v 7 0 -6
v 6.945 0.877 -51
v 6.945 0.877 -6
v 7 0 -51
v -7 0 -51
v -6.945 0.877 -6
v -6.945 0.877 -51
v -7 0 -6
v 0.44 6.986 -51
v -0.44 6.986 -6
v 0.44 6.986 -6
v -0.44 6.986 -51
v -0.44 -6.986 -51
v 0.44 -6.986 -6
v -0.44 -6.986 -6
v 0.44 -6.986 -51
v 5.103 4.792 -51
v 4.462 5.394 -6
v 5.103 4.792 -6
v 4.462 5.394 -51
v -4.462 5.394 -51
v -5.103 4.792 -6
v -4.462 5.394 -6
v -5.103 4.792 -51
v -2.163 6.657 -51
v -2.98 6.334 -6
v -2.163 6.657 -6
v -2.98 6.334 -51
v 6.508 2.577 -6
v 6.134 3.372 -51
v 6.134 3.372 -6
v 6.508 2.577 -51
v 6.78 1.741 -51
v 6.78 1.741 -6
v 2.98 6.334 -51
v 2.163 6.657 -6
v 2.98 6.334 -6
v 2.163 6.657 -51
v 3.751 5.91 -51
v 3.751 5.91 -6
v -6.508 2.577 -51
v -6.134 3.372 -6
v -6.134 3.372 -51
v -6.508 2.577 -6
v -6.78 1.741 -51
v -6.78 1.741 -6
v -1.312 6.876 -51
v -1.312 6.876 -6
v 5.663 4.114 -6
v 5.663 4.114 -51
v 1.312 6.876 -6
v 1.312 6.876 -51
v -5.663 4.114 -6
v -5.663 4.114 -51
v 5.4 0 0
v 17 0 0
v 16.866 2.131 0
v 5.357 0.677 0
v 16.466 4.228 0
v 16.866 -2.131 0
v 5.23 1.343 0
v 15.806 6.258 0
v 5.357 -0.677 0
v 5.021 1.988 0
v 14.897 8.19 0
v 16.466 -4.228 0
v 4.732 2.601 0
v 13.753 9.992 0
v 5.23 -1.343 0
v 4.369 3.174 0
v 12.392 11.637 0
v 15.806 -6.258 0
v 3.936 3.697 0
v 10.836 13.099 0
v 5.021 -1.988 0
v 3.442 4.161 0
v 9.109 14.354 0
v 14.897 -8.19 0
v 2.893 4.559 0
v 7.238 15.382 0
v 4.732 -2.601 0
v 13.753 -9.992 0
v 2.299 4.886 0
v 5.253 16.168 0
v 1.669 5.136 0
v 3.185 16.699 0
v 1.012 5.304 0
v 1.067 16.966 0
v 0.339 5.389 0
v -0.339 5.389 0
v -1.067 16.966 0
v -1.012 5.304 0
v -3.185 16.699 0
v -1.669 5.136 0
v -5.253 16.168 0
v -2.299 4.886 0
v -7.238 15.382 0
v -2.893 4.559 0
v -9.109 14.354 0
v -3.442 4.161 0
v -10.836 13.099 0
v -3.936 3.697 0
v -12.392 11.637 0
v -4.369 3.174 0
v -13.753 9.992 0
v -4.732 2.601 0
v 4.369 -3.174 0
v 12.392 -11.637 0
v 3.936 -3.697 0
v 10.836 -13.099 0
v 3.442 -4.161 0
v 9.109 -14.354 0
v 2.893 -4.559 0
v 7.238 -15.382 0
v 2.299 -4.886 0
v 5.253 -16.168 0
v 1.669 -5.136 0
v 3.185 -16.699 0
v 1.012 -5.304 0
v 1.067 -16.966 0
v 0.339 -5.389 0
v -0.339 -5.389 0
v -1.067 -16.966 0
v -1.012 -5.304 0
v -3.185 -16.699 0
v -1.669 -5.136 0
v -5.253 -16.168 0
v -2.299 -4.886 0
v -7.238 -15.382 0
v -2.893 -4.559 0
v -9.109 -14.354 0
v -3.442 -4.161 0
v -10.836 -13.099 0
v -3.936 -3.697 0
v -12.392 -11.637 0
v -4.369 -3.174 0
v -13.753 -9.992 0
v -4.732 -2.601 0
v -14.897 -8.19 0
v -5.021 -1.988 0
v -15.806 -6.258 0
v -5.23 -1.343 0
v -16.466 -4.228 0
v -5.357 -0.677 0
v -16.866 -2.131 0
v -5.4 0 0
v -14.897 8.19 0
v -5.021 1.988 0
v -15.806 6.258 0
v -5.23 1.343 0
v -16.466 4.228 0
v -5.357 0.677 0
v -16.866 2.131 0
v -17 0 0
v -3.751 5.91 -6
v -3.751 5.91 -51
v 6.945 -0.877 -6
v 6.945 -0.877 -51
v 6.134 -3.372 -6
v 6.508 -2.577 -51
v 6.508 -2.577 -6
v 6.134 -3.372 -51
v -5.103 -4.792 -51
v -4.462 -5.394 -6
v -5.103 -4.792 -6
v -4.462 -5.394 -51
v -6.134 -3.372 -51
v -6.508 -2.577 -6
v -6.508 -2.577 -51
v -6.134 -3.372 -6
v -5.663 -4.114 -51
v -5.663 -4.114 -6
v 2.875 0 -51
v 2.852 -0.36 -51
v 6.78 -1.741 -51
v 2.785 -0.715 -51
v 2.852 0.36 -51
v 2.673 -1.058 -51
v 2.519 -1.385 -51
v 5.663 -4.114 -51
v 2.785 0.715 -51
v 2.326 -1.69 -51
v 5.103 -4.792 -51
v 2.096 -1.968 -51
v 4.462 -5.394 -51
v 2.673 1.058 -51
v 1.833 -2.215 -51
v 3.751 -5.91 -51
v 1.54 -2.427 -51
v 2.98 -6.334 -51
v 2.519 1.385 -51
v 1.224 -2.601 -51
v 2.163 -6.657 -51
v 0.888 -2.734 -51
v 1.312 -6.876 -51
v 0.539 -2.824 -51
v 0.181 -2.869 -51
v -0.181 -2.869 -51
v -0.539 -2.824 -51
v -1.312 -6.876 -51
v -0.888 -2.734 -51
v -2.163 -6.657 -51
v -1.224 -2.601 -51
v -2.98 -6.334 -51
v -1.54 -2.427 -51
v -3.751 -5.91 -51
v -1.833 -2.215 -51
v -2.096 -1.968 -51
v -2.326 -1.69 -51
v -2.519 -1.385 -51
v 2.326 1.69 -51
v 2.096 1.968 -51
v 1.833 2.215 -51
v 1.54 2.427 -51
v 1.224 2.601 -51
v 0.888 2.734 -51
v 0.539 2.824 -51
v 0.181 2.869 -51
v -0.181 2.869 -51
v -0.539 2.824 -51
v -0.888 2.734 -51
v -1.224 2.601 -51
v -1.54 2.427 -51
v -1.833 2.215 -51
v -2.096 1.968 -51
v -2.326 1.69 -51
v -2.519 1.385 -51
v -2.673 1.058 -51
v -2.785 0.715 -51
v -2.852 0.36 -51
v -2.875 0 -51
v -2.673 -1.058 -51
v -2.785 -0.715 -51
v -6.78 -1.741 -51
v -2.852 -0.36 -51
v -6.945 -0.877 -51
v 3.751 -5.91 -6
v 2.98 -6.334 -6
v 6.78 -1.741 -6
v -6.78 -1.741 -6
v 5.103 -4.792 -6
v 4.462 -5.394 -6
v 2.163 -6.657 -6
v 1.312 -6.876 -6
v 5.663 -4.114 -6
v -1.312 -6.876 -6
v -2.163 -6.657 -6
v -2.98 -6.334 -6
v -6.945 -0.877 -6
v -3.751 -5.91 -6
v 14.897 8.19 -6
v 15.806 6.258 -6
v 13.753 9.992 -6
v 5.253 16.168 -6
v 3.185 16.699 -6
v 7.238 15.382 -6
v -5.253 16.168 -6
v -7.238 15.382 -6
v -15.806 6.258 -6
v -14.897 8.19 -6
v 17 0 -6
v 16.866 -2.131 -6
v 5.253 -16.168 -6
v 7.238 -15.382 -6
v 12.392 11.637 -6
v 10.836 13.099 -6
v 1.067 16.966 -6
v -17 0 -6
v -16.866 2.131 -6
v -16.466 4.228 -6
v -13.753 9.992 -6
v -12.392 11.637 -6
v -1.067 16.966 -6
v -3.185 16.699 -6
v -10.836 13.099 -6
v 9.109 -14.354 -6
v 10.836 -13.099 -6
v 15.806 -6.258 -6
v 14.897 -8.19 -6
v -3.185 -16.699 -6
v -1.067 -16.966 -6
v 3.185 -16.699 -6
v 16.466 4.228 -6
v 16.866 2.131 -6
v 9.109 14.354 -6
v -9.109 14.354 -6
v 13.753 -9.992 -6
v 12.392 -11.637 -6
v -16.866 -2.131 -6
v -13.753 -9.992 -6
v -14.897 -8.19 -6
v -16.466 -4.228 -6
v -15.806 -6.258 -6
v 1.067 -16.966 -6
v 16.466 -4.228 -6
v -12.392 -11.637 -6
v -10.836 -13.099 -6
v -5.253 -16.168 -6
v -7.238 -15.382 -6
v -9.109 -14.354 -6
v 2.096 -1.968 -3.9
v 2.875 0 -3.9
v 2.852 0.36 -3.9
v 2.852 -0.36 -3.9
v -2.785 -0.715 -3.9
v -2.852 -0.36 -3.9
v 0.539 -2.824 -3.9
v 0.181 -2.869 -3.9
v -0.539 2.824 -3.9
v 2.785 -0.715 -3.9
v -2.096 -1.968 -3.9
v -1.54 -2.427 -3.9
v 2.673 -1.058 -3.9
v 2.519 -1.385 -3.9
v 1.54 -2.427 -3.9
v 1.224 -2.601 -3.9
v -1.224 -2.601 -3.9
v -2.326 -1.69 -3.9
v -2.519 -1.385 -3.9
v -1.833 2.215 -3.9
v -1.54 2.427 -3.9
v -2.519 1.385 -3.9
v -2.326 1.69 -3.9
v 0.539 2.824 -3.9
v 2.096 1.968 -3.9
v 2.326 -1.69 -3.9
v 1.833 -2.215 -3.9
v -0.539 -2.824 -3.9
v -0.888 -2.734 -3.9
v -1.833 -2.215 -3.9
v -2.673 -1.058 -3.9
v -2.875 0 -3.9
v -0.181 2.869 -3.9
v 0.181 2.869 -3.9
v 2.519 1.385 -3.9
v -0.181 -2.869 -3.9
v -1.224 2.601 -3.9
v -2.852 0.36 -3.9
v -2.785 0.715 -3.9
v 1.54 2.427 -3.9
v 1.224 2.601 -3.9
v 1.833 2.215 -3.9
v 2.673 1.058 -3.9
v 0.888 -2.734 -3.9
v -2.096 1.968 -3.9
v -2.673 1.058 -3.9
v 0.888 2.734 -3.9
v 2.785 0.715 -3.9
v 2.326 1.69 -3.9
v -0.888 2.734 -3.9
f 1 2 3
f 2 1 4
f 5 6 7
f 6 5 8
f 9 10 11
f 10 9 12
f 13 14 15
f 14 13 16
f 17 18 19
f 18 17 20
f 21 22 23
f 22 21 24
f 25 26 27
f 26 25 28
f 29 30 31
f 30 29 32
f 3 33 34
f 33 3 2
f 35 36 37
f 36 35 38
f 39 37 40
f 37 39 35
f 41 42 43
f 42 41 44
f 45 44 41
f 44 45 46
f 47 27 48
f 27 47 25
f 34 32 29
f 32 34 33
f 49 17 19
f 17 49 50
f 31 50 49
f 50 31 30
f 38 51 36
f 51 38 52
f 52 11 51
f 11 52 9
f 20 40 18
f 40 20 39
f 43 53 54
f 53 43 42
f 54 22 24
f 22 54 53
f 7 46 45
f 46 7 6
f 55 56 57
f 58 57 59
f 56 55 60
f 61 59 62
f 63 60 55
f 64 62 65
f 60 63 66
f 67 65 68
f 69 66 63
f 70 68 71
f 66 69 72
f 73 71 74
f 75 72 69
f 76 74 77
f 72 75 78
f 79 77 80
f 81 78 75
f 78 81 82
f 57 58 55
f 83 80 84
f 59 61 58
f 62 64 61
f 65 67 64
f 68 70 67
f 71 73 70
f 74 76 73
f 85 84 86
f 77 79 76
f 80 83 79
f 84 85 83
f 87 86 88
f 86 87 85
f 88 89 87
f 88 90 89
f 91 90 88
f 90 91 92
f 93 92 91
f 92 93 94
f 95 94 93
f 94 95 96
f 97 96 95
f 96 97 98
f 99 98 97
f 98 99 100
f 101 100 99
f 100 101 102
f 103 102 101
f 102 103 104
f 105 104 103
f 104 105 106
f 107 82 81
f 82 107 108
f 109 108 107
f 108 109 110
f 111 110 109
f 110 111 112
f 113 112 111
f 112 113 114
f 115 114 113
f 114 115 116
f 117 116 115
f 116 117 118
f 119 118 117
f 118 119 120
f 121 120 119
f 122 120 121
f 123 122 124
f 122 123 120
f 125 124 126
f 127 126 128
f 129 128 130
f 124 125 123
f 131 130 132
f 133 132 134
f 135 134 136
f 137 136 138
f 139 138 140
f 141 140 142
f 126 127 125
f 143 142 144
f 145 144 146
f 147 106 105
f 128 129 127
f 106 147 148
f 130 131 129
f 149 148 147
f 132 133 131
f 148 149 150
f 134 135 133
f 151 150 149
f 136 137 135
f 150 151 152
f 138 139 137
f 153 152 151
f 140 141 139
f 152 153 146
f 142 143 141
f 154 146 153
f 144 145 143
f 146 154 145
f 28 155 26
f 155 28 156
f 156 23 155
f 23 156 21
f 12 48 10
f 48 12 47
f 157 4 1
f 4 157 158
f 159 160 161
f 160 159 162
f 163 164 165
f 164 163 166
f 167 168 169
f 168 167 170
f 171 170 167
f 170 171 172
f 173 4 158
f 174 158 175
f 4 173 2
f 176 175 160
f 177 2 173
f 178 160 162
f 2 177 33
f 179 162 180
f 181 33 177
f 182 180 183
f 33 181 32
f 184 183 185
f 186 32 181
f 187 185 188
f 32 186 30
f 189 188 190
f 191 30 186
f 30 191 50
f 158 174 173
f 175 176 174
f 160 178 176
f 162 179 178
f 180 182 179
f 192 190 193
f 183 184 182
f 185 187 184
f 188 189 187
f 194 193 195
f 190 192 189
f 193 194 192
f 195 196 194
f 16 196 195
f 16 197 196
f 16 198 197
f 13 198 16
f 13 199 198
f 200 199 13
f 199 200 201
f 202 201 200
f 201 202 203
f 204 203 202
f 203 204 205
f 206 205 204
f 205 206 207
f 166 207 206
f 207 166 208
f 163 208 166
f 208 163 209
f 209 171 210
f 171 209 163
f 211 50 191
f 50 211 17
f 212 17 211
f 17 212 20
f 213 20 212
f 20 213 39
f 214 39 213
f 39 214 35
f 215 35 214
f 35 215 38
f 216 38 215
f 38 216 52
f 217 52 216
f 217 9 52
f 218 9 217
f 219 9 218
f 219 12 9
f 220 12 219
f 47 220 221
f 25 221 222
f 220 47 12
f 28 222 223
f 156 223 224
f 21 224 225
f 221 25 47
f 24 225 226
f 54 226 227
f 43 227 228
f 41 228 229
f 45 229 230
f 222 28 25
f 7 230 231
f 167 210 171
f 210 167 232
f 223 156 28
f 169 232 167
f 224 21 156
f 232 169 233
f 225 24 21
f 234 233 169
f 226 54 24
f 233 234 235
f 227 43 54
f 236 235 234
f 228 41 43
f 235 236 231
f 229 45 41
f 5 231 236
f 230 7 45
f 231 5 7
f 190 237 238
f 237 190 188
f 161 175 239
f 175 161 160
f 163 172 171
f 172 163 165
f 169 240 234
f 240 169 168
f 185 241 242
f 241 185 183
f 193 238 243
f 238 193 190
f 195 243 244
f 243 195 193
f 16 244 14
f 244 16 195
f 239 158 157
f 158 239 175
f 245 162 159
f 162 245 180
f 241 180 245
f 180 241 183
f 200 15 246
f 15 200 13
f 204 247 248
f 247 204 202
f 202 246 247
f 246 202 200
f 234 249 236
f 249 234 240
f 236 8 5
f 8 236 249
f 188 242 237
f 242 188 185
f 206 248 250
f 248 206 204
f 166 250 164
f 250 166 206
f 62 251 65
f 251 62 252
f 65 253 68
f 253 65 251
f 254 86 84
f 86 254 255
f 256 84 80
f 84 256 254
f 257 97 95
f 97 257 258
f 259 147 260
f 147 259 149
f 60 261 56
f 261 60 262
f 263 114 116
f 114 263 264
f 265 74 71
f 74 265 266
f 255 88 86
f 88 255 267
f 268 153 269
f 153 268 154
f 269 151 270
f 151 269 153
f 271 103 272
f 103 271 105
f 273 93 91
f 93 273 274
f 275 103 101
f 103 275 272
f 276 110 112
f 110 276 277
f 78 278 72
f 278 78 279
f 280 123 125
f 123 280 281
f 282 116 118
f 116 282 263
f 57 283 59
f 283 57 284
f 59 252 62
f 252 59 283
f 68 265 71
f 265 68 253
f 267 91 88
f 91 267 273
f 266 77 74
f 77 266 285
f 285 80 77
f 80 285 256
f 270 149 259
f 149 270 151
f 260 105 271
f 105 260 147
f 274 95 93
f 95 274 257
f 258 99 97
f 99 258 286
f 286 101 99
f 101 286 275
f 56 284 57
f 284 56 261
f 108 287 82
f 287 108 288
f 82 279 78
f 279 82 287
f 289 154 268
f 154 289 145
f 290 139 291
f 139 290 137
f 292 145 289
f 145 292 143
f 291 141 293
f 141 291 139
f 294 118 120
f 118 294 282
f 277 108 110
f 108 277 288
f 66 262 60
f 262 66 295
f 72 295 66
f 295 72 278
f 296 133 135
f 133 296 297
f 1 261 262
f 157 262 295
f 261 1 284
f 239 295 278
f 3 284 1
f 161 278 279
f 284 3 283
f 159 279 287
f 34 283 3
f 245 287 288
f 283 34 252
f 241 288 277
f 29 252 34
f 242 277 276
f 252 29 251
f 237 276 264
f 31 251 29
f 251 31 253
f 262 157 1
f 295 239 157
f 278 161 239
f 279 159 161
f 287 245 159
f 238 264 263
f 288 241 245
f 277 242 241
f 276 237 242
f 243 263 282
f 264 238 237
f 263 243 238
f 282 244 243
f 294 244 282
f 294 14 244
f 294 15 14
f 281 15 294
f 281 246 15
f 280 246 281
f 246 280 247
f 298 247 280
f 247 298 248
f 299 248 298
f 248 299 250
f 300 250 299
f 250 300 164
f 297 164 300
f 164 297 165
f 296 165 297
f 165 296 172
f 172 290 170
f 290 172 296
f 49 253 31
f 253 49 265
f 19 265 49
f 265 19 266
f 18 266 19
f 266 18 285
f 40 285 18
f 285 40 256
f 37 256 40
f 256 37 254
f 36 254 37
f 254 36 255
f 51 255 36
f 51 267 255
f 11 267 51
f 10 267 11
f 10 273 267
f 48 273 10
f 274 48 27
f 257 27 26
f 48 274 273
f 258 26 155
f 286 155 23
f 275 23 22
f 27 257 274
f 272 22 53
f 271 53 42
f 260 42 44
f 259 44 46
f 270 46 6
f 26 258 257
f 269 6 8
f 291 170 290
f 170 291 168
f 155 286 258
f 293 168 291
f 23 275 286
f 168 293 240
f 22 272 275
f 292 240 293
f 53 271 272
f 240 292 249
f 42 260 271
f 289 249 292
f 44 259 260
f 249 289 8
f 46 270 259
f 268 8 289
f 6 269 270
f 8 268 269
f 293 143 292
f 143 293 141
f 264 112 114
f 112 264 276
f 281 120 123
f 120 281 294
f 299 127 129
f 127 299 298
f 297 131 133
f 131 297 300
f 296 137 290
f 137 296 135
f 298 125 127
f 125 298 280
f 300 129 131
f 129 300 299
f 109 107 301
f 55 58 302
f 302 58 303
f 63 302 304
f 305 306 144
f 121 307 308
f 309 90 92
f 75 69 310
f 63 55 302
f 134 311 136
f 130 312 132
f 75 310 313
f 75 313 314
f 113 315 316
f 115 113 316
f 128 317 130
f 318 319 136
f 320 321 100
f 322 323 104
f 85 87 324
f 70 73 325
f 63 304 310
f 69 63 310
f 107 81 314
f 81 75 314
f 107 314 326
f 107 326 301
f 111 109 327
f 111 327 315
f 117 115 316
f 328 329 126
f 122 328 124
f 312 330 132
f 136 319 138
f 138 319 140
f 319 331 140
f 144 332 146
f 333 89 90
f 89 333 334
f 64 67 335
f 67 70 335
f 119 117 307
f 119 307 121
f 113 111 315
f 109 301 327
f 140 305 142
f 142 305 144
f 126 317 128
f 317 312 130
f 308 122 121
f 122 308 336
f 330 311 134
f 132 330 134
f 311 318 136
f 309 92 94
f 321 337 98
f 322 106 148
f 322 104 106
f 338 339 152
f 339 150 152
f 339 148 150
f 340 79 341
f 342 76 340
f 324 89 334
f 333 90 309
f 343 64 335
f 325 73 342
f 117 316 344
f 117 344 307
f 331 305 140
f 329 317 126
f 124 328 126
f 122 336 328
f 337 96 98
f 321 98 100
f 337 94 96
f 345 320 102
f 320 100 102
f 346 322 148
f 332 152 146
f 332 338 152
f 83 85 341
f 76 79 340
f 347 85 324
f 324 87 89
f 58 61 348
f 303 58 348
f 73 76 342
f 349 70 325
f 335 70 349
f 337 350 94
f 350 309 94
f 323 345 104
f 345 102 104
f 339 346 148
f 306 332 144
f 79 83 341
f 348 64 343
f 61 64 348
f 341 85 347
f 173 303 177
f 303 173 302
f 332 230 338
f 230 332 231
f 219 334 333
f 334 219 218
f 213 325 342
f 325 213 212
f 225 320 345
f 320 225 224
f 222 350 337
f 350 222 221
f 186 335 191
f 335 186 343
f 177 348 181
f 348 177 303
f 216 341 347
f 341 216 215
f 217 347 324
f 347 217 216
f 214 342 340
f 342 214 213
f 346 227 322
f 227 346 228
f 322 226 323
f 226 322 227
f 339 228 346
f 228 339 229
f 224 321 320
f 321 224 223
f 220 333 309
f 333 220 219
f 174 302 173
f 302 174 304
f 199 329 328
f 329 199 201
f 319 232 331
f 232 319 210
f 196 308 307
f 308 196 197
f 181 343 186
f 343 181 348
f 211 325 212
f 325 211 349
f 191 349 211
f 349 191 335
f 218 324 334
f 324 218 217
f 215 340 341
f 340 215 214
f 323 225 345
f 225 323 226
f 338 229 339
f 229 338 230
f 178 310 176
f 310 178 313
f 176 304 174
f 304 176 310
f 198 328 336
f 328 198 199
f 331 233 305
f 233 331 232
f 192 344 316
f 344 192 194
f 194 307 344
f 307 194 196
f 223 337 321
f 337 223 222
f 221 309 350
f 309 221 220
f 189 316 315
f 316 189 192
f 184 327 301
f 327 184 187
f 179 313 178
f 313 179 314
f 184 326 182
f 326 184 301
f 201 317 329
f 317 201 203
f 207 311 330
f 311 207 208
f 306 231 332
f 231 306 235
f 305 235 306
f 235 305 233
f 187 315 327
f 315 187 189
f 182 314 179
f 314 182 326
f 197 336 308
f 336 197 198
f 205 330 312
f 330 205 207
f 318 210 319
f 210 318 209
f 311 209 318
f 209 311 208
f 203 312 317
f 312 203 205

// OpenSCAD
$fn = 50;


difference() {
	union() {
		translate(v = [0, 0, -51.0000000000]) {
			cylinder(h = 51, r = 7.0000000000);
		}
		translate(v = [0, 0, -6.0000000000]) {
			cylinder(h = 6, r = 17.0000000000);
		}
	}
	union() {
		translate(v = [0, 0, 0]) {
			rotate(a = [0, 0, 0]) {
				difference() {
					union() {
						#translate(v = [0, 0, -51.0000000000]) {
							cylinder(h = 51, r = 2.6000000000);
						}
						#translate(v = [0, 0, -3.9000000000]) {
							cylinder(h = 3.9000000000, r = 7.0000000000, r1 = 2.8750000000, r2 = 5.4000000000);
						}
						#translate(v = [0, 0, -51.0000000000]) {
							cylinder(h = 51, r = 2.8750000000);
						}
						#translate(v = [0, 0, -51.0000000000]) {
							cylinder(h = 51, r = 2.6000000000);
						}
					}
					union();
				}
			}
		}
	}
}
